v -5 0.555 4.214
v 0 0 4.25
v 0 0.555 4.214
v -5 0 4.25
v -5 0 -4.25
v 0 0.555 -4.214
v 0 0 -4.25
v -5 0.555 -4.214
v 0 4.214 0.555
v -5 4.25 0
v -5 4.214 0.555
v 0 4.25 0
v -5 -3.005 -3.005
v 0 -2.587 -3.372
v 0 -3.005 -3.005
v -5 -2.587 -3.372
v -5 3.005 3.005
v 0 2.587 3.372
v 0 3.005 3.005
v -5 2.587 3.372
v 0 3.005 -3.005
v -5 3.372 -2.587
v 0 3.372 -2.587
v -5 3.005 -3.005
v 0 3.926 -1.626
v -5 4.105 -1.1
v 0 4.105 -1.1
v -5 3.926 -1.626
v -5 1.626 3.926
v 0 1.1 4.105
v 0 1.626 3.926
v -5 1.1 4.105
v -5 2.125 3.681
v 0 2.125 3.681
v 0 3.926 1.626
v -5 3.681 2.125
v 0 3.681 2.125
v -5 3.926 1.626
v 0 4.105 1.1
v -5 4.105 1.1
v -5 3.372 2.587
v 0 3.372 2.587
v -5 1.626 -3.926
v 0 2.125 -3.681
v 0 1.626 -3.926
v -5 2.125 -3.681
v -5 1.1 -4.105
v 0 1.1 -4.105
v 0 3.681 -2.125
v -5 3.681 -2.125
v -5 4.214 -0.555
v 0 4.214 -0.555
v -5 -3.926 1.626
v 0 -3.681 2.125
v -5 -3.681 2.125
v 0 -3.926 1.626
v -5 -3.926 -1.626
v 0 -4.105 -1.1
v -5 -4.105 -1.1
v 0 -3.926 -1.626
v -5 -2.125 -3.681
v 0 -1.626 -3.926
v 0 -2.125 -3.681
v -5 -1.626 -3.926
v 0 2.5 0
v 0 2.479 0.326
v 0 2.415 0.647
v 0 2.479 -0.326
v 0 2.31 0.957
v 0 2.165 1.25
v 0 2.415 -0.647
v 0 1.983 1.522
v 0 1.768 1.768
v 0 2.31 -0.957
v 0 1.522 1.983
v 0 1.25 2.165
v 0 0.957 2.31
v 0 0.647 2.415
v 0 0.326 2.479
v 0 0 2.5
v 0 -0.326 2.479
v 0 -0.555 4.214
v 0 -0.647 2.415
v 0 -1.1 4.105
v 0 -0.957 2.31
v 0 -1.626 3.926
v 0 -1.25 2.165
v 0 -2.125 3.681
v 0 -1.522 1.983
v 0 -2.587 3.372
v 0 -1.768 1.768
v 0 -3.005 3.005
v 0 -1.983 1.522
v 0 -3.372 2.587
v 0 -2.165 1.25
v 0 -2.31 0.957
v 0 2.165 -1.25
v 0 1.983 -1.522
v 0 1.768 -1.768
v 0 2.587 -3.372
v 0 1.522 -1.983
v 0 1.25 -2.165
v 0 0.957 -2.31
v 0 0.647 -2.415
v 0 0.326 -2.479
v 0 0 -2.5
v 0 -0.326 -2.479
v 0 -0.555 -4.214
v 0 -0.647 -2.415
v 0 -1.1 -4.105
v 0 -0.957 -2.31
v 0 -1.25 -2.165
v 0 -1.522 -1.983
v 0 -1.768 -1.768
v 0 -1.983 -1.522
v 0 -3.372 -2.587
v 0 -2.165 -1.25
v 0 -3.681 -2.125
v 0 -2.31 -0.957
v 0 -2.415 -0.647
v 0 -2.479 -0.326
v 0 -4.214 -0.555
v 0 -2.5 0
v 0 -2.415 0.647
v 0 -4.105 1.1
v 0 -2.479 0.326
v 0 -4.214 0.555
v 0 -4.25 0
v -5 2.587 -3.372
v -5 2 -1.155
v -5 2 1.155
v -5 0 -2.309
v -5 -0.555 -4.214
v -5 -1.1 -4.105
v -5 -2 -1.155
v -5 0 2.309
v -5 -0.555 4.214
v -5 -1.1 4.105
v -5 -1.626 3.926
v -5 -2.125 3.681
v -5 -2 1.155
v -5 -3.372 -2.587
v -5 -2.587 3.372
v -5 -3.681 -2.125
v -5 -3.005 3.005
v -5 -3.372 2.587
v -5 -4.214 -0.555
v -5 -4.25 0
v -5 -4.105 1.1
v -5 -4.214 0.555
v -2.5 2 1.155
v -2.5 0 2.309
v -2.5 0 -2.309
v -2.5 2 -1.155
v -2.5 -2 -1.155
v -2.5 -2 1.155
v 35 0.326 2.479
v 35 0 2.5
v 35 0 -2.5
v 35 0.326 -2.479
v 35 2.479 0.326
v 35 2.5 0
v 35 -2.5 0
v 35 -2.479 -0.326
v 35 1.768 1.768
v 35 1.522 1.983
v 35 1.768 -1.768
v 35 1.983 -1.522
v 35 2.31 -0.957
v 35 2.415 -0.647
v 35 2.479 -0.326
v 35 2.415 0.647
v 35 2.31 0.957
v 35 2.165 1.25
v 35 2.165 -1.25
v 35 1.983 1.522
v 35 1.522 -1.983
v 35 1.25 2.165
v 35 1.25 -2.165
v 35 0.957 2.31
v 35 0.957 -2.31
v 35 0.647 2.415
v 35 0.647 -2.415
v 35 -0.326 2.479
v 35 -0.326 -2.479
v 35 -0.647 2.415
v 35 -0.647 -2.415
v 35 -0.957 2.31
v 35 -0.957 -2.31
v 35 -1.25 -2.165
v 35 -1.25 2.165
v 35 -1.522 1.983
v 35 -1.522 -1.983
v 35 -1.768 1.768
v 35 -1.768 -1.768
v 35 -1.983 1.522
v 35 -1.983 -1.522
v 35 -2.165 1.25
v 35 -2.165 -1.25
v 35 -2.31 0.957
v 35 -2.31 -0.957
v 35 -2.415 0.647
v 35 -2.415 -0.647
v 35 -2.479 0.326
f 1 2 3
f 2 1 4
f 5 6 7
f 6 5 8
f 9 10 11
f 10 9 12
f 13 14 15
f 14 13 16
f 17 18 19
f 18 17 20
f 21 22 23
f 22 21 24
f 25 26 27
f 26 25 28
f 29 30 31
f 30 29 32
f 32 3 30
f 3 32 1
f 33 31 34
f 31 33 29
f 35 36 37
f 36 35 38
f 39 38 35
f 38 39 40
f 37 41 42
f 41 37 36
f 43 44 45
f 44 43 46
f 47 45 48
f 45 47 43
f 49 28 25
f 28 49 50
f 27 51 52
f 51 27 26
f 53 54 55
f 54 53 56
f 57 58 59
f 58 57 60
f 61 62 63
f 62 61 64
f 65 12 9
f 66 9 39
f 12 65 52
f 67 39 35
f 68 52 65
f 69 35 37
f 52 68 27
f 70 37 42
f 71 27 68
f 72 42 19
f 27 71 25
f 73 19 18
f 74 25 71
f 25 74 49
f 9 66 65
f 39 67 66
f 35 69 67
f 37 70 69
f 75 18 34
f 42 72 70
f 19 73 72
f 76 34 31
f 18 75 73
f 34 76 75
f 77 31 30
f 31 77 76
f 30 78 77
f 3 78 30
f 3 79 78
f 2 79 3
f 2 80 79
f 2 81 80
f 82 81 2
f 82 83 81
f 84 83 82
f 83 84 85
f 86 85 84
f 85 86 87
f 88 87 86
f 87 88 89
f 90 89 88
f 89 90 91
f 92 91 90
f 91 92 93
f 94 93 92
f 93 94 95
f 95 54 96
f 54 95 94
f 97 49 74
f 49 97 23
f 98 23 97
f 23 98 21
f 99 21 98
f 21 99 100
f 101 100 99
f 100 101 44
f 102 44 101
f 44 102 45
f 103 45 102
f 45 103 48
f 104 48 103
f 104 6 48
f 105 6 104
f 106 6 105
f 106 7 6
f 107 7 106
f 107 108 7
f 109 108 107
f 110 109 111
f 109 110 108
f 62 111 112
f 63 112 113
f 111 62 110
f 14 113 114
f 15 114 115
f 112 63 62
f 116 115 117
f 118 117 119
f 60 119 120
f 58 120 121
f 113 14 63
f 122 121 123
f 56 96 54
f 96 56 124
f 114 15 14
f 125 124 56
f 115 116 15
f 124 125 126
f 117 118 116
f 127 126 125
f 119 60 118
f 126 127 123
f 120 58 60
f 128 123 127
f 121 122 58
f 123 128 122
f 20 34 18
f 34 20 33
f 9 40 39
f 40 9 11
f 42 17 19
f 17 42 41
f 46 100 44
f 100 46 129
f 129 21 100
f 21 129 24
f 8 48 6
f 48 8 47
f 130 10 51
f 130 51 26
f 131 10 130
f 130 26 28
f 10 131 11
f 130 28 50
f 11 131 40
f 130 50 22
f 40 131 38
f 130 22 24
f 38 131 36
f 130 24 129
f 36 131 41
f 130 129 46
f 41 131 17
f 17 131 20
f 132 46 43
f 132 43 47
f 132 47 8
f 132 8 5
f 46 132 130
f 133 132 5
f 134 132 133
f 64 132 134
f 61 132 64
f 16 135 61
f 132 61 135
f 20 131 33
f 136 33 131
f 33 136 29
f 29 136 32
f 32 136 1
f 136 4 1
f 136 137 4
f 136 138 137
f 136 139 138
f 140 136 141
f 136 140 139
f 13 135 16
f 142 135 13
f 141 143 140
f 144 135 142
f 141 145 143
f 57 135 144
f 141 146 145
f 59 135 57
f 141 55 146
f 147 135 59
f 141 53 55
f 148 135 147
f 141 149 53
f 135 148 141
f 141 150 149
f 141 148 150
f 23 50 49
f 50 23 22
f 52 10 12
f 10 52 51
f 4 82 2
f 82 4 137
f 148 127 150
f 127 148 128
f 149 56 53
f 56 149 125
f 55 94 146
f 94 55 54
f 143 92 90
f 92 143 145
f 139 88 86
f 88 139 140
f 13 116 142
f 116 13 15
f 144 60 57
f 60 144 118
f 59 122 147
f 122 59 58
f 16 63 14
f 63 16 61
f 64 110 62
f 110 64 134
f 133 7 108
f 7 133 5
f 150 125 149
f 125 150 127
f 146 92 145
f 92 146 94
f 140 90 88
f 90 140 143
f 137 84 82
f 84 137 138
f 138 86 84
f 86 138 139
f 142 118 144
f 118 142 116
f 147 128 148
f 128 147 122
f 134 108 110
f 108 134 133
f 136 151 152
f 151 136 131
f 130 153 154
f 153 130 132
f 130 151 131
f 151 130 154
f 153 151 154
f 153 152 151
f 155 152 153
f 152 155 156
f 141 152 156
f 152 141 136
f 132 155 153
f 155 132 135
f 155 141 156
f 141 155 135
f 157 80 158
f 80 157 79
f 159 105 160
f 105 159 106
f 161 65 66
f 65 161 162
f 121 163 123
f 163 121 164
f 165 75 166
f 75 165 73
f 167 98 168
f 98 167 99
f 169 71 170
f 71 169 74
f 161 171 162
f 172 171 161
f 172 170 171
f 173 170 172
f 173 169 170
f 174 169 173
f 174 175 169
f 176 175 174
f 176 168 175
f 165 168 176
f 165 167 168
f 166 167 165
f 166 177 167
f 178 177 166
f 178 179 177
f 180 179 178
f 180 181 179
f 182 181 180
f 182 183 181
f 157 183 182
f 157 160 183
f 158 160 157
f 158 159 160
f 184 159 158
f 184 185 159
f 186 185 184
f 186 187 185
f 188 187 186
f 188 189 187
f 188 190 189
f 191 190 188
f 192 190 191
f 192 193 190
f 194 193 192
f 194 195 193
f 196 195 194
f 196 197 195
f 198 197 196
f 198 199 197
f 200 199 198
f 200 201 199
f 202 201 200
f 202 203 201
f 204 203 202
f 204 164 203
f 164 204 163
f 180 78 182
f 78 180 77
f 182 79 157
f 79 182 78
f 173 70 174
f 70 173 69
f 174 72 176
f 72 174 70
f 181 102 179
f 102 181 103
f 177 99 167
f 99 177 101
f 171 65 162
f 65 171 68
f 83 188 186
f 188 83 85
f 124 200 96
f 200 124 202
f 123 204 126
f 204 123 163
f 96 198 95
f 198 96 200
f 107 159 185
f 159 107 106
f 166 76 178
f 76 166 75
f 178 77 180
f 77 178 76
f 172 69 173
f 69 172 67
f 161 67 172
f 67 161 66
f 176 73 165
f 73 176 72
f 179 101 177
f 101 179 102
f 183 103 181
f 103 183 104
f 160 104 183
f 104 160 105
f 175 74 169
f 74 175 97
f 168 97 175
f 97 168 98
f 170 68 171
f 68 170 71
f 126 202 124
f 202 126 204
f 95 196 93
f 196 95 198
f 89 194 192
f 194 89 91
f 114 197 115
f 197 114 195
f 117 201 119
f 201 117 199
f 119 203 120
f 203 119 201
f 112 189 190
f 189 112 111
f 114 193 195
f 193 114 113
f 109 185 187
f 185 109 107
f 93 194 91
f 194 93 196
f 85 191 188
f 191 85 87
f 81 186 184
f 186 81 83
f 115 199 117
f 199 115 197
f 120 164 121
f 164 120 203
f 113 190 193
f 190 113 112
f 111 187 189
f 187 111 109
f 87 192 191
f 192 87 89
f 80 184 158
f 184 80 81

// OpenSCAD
// file: ../../../lib/nutsnbolts/data-access.scad
// Norm Nuts and Bolts - a OpenSCAD library
// Copyright (C) 2012  Johannes Kneer

// This program is free software: you can redistribute it and/or modify
// it under the terms of the GNU General Public License as published by
// the Free Software Foundation, either version 3 of the License, or
// (at your option) any later version.

// This program is distributed in the hope that it will be useful,
// but WITHOUT ANY WARRANTY; without even the implied warranty of
// MERCHANTABILITY or FITNESS FOR A PARTICULAR PURPOSE.  See the
// GNU General Public License for more details.

// You should have received a copy of the GNU General Public License
// along with this program.  If not, see <http://www.gnu.org/licenses/>.


// DATABASE ACCESS FUNCTIONS AND CONSTANTS



// == CONSTANTS ==

// screw table access keys
_NB_S_DESC            = 0;
_NB_S_FAMKEY			    = 1;
_NB_S_LENGTH          = 2;
_NB_S_NOTHREAD_LENGTH = 3;

_NB_F_DESC			      = 0;
_NB_F_OUTER_DIA       = 1;
_NB_F_INNER_DIA       = 2;
_NB_F_LEAD            = 3;
_NB_F_KEY             = 4;
_NB_F_KEY_DEPTH       = 5;
_NB_F_HEAD_HEIGHT     = 6;
_NB_F_HEAD_DIA        = 7;
_NB_F_NUT_KEY         = 8;
_NB_F_NUT_HEIGHT      = 9;
_NB_F_PITCH_FINE      = 10;
_NB_F_PITCH_MEDIUM    = 11;
_NB_F_PITCH_COARSE    = 12;


// == FUNCTIONS ==

// _get_screw("descriptor")   with descriptor = M8x25
//   find the line for a general object in the data matrix

function _get_screw(n) = data_screw[search([n], data_screw)[0]];
function _get_screw_fam(n) = data_screw_fam[search([_get_screw(n)[_NB_S_FAMKEY]], data_screw_fam)[0]];

function _get_fam(n) = data_screw_fam[search([n], data_screw_fam)[0]];


// _get_XXXXX("descriptor") functions
// find a single property in the database

function _get_desc(n)        = _get_screw(n)[_NB_S_DESC];
function _get_famkey(n)         = _get_screw(n)[_NB_S_FAMKEY];
function _get_length(n)      = _get_screw(n)[_NB_S_LENGTH];
function _get_nt_length(n)   = _get_screw(n)[_NB_S_NOTHREAD_LENGTH];

function _get_outer_dia(n)   = _get_screw_fam(n)[_NB_F_OUTER_DIA];
function _get_inner_dia(n)   = _get_screw_fam(n)[_NB_F_INNER_DIA];
function _get_lead(n)        = _get_screw_fam(n)[_NB_F_LEAD];
function _get_head_height(n) = _get_screw_fam(n)[_NB_F_HEAD_HEIGHT];
function _get_head_dia(n)    = _get_screw_fam(n)[_NB_F_HEAD_DIA];
function _get_nut_key(n)     = _get_screw_fam(n)[_NB_F_NUT_KEY];
function _get_nut_height(n)  = _get_screw_fam(n)[_NB_F_NUT_HEIGHT];
function _get_fine_pitch(n)  = _get_screw_fam(n)[_NB_F_PITCH_FINE];
function _get_medium_pitch(n)  = _get_screw_fam(n)[_NB_F_PITCH_MEDIUM];
function _get_coarse_pitch(n)  = _get_screw_fam(n)[_NB_F_PITCH_COARSE];
// main file
/**********************************************************************************************************************
 **
 ** parts/vitamins/screw_M5x35.scad
 **
 ** This file renders a screw of the dimensions specified by the file name.
 **
 **********************************************************************************************************************/

include <../../../lib/nutsnbolts/cyl_head_bolt.scad>;

$fn = 48;
rotate([0, -90, 0])
	screw("M5x35"); 
